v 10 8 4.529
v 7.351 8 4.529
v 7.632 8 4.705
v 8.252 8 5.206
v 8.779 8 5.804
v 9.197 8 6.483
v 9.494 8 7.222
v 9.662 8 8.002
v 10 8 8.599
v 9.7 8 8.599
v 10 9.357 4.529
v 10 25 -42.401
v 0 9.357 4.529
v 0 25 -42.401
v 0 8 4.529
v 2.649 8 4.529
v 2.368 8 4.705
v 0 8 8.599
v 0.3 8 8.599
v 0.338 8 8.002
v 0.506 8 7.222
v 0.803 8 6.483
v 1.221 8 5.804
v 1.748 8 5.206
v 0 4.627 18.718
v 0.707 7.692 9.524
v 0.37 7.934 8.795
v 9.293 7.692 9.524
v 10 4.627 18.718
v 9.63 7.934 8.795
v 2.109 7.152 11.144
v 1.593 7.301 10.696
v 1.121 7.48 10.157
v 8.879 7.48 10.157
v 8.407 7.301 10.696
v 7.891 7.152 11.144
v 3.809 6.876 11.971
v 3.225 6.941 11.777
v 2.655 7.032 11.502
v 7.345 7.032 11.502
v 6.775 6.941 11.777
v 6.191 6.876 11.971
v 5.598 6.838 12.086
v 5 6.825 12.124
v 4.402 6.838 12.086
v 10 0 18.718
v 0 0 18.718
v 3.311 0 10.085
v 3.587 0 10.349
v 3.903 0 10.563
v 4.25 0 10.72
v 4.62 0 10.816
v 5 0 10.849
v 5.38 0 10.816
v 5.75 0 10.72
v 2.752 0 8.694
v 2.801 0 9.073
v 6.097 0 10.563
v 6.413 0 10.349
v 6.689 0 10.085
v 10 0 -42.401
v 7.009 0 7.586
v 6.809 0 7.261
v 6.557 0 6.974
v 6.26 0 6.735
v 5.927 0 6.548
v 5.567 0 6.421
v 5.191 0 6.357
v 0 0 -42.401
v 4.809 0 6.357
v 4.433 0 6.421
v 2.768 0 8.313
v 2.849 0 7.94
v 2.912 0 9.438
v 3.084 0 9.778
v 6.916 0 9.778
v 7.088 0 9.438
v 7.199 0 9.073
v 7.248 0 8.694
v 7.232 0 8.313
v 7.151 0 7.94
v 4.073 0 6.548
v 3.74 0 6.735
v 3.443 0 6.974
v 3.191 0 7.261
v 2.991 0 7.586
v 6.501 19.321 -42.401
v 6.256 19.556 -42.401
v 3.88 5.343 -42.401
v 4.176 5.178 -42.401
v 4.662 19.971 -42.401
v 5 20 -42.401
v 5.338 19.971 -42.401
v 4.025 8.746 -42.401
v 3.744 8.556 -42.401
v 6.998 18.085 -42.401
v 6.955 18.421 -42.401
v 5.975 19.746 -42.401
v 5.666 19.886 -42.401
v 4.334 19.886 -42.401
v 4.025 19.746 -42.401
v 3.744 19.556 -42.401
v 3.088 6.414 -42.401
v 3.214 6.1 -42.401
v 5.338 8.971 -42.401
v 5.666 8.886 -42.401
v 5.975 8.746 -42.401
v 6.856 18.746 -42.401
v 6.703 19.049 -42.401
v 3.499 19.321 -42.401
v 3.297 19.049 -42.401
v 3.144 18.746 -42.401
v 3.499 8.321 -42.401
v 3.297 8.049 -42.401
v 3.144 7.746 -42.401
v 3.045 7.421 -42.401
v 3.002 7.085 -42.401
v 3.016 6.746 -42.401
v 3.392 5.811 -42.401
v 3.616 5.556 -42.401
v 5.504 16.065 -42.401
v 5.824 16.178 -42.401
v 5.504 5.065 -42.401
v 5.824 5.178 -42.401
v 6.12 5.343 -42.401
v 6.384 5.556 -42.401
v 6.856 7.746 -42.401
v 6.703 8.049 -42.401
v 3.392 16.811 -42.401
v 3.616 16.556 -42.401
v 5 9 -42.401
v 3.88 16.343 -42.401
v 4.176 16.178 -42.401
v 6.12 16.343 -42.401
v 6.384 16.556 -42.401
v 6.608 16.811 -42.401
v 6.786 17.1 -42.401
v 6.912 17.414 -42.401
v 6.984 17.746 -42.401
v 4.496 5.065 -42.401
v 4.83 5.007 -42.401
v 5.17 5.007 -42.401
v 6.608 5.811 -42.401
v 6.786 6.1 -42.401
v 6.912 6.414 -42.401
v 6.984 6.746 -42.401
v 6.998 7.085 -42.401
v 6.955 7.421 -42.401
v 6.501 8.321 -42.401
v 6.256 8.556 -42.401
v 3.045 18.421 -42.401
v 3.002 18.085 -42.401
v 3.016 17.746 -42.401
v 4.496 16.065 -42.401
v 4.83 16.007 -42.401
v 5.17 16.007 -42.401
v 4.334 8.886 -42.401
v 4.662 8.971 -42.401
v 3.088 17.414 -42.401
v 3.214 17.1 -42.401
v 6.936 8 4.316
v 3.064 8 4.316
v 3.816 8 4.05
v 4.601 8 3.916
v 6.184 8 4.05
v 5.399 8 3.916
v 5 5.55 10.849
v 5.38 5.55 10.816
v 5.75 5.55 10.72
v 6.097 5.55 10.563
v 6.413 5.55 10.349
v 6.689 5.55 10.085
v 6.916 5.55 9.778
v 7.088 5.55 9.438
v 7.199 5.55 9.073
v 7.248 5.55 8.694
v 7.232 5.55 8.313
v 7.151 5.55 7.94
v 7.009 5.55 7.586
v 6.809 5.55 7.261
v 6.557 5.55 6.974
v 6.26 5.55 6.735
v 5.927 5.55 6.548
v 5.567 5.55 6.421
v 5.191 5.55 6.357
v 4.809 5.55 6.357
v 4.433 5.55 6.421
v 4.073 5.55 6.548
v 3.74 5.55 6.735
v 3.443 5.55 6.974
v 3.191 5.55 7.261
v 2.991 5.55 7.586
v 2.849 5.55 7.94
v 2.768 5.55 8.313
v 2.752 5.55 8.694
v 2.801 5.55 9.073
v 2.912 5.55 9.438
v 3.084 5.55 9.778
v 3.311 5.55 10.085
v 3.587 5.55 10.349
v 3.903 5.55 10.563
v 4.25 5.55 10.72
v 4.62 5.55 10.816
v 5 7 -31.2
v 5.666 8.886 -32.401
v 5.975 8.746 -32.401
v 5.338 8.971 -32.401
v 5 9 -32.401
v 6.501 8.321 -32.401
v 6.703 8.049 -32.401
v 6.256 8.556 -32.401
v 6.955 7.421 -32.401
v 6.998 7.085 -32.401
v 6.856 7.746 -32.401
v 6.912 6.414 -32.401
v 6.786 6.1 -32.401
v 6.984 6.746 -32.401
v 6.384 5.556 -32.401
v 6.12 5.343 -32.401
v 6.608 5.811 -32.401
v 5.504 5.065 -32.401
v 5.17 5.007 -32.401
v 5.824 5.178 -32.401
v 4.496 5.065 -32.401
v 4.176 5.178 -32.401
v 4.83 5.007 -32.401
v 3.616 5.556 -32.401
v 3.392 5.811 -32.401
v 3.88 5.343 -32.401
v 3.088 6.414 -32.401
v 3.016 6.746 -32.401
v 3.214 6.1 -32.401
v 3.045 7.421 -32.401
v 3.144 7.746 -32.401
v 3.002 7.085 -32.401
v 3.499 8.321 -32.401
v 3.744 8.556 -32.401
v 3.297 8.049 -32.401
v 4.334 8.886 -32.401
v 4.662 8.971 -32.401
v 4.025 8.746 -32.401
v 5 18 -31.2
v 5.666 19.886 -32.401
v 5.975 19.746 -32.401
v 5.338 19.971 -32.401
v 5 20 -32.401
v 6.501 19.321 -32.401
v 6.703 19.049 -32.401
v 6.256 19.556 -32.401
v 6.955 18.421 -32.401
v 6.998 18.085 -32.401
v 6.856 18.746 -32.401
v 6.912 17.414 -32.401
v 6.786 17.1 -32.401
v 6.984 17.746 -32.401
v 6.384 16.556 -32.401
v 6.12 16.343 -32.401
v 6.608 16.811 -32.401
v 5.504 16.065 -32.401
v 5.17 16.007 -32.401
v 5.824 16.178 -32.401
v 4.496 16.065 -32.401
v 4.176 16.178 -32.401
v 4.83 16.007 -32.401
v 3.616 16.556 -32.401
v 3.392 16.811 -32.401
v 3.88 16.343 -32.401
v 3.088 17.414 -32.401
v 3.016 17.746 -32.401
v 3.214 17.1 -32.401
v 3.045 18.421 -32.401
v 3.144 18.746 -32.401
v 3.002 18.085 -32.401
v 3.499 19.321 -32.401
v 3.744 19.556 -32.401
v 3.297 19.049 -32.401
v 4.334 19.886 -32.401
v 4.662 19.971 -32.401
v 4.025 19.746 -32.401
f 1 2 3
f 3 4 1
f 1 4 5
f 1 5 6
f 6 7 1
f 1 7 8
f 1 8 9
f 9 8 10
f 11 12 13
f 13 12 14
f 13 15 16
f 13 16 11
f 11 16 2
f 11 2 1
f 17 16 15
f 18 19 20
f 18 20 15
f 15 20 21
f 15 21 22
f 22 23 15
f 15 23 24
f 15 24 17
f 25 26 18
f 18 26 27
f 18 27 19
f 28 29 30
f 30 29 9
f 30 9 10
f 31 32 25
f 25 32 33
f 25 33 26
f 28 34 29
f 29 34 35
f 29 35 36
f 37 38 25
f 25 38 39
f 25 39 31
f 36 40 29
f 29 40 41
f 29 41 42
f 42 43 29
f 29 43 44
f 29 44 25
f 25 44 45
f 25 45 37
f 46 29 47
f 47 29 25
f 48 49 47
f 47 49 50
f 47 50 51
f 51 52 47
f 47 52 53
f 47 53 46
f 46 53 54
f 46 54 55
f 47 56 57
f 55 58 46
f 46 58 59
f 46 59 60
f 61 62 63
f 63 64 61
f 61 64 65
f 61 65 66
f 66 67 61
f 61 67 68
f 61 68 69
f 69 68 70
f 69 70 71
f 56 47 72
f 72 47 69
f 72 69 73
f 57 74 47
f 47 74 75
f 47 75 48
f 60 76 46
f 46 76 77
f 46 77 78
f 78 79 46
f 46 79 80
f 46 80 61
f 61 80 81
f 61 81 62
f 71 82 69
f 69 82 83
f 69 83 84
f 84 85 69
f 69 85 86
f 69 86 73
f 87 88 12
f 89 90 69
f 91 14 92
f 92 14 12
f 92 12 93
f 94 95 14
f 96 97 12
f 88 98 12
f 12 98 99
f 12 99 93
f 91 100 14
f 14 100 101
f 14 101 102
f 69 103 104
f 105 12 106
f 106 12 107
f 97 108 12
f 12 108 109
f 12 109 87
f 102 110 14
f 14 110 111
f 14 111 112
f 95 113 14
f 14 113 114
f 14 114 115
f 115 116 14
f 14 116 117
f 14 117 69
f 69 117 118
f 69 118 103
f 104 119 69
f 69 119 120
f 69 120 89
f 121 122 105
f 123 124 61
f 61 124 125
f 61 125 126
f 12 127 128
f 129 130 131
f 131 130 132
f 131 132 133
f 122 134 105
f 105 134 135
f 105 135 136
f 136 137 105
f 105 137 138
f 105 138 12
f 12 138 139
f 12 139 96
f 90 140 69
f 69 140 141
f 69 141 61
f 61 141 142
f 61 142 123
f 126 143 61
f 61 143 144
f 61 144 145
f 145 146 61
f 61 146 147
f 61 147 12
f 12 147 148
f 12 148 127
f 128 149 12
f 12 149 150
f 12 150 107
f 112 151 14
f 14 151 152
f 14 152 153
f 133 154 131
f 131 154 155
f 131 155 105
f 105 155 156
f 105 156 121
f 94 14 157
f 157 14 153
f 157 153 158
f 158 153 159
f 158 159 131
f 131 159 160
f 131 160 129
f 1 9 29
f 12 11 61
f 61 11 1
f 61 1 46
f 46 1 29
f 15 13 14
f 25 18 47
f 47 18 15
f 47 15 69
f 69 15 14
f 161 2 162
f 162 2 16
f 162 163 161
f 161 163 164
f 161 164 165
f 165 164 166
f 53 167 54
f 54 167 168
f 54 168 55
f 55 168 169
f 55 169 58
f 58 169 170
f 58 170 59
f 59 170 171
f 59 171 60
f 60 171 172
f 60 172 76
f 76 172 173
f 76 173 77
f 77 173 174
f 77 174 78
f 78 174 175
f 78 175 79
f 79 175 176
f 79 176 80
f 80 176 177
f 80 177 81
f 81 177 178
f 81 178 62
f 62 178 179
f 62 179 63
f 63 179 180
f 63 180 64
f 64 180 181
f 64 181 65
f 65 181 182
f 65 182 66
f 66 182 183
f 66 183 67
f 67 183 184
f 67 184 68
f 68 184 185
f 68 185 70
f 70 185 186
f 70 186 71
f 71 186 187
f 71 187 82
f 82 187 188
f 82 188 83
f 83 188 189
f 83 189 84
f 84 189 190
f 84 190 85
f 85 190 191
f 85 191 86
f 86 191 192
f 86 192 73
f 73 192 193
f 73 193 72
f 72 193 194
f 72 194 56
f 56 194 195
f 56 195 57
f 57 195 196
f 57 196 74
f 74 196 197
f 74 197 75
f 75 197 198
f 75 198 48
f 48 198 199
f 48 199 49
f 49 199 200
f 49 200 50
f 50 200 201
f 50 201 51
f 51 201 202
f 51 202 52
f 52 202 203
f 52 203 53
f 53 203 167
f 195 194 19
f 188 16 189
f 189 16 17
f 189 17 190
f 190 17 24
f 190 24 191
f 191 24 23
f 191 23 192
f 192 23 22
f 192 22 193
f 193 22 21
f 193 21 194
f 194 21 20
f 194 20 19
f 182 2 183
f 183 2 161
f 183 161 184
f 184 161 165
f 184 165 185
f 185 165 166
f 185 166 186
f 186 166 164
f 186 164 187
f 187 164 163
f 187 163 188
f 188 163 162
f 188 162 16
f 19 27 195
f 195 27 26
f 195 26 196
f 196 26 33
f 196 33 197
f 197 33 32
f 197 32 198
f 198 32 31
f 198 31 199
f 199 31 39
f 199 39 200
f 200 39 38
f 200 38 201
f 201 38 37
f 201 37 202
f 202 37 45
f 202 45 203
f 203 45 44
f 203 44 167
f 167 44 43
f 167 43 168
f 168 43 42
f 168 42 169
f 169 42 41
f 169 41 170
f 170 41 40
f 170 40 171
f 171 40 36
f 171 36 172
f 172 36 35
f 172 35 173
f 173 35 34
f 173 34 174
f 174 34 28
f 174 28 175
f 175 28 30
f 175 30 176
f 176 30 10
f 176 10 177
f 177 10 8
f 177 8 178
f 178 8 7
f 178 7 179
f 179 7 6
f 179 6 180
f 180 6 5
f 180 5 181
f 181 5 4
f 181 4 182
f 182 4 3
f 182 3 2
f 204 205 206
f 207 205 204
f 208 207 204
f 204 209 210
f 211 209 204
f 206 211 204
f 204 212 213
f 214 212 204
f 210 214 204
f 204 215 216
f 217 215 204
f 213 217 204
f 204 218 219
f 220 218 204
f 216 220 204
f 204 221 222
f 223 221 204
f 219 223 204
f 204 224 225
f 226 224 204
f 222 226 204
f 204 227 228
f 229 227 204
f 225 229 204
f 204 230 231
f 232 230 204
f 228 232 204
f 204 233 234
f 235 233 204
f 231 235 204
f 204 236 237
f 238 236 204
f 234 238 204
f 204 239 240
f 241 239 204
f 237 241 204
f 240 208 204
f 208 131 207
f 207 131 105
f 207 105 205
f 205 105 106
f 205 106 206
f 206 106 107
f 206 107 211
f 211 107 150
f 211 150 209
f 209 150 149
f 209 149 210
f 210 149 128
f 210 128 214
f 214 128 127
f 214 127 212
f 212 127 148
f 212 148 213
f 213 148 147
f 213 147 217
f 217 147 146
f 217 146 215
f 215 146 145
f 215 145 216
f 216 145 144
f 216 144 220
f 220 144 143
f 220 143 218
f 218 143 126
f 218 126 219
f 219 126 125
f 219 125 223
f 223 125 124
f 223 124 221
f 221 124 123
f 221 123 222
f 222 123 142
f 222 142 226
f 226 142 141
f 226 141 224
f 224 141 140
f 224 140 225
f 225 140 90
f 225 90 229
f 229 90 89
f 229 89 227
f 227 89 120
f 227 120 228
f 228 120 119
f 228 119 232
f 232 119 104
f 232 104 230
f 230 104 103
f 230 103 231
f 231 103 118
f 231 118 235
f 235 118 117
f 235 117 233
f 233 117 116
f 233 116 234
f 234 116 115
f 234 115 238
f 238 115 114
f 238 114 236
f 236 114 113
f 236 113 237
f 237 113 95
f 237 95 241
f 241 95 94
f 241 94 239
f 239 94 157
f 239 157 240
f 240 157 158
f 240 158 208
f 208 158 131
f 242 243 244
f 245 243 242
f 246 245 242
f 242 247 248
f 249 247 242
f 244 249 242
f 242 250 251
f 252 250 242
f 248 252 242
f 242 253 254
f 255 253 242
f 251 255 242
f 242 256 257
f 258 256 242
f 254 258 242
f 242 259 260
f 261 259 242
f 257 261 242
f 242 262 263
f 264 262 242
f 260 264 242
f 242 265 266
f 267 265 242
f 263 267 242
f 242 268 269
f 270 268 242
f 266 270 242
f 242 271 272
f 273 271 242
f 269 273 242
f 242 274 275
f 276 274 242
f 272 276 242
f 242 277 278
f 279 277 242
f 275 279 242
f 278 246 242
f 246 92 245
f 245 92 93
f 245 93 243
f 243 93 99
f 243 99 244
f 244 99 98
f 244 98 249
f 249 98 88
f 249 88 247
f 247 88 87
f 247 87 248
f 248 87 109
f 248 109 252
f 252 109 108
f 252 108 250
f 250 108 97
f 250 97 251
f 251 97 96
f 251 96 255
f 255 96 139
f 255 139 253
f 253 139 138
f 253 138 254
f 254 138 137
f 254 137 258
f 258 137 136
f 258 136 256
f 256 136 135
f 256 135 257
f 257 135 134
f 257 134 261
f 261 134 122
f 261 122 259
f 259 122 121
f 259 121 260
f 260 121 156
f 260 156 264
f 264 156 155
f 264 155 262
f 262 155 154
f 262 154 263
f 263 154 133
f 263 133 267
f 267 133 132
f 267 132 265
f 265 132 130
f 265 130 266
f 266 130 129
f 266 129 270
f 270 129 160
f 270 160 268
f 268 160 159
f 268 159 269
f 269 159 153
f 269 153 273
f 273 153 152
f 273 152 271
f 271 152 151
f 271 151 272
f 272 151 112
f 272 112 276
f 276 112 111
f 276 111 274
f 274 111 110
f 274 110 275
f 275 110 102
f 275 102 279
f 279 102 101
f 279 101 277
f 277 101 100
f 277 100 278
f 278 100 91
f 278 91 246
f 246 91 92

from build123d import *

# Parameters (mm, degrees)
BOSS_EXTRUDE1_DEPTH       = 10
F_4_0MM_DOWEL_HOLE1_D     = 4
F_4_0MM_DOWEL_HOLE1_DEPTH = 10
F_4_0MM_DOWEL_HOLE1_TIP   = 1.201721238


with BuildPart() as part:
    # Sketch1 → Boss-Extrude1 (new body)
    with BuildSketch(Plane(origin=(0, 0, 0), x_dir=(0, 0, -1), z_dir=(1, 0, 0))):
        Polygon((-18.718400177, 4.62678414), (-8.598752597, 8), (-4.529205873, 8), (-4.529205873, 9.356515575), (42.401247403, 25), (42.401247403, 0), (-18.718400177, 0), align=None)
    extrude(amount=BOSS_EXTRUDE1_DEPTH)

    # Sketch9 → CSK for M4 Flat Head Machine Screw2 (revolve, cut)
    with BuildSketch(Plane(origin=(5, 8, 8.598752597), x_dir=(0, 0, 1), z_dir=(1, 0, 0))):
        Polygon((0, 0), (0, 11.351936393), (2.25, 10), (2.25, 2.45), (4.7, 0), align=None)
    revolve(axis=Axis((5, 14.35, 8.598752597), (0, -1, 0)), mode=Mode.SUBTRACT)

    # Ø4.0mm Dowel Hole1
    with Locations(Plane(origin=(5, 18, -42.401247403), x_dir=(0, -1, 0), z_dir=(0, 0, -1))):
        with Locations((0, 0), (11, 0)):
            Hole(F_4_0MM_DOWEL_HOLE1_D / 2, depth=F_4_0MM_DOWEL_HOLE1_DEPTH)
            with Locations((0, 0, -(F_4_0MM_DOWEL_HOLE1_DEPTH + F_4_0MM_DOWEL_HOLE1_TIP / 2))):  # 118° drill point
                Cone(0, F_4_0MM_DOWEL_HOLE1_D / 2, F_4_0MM_DOWEL_HOLE1_TIP, mode=Mode.SUBTRACT)


solid = part.part
